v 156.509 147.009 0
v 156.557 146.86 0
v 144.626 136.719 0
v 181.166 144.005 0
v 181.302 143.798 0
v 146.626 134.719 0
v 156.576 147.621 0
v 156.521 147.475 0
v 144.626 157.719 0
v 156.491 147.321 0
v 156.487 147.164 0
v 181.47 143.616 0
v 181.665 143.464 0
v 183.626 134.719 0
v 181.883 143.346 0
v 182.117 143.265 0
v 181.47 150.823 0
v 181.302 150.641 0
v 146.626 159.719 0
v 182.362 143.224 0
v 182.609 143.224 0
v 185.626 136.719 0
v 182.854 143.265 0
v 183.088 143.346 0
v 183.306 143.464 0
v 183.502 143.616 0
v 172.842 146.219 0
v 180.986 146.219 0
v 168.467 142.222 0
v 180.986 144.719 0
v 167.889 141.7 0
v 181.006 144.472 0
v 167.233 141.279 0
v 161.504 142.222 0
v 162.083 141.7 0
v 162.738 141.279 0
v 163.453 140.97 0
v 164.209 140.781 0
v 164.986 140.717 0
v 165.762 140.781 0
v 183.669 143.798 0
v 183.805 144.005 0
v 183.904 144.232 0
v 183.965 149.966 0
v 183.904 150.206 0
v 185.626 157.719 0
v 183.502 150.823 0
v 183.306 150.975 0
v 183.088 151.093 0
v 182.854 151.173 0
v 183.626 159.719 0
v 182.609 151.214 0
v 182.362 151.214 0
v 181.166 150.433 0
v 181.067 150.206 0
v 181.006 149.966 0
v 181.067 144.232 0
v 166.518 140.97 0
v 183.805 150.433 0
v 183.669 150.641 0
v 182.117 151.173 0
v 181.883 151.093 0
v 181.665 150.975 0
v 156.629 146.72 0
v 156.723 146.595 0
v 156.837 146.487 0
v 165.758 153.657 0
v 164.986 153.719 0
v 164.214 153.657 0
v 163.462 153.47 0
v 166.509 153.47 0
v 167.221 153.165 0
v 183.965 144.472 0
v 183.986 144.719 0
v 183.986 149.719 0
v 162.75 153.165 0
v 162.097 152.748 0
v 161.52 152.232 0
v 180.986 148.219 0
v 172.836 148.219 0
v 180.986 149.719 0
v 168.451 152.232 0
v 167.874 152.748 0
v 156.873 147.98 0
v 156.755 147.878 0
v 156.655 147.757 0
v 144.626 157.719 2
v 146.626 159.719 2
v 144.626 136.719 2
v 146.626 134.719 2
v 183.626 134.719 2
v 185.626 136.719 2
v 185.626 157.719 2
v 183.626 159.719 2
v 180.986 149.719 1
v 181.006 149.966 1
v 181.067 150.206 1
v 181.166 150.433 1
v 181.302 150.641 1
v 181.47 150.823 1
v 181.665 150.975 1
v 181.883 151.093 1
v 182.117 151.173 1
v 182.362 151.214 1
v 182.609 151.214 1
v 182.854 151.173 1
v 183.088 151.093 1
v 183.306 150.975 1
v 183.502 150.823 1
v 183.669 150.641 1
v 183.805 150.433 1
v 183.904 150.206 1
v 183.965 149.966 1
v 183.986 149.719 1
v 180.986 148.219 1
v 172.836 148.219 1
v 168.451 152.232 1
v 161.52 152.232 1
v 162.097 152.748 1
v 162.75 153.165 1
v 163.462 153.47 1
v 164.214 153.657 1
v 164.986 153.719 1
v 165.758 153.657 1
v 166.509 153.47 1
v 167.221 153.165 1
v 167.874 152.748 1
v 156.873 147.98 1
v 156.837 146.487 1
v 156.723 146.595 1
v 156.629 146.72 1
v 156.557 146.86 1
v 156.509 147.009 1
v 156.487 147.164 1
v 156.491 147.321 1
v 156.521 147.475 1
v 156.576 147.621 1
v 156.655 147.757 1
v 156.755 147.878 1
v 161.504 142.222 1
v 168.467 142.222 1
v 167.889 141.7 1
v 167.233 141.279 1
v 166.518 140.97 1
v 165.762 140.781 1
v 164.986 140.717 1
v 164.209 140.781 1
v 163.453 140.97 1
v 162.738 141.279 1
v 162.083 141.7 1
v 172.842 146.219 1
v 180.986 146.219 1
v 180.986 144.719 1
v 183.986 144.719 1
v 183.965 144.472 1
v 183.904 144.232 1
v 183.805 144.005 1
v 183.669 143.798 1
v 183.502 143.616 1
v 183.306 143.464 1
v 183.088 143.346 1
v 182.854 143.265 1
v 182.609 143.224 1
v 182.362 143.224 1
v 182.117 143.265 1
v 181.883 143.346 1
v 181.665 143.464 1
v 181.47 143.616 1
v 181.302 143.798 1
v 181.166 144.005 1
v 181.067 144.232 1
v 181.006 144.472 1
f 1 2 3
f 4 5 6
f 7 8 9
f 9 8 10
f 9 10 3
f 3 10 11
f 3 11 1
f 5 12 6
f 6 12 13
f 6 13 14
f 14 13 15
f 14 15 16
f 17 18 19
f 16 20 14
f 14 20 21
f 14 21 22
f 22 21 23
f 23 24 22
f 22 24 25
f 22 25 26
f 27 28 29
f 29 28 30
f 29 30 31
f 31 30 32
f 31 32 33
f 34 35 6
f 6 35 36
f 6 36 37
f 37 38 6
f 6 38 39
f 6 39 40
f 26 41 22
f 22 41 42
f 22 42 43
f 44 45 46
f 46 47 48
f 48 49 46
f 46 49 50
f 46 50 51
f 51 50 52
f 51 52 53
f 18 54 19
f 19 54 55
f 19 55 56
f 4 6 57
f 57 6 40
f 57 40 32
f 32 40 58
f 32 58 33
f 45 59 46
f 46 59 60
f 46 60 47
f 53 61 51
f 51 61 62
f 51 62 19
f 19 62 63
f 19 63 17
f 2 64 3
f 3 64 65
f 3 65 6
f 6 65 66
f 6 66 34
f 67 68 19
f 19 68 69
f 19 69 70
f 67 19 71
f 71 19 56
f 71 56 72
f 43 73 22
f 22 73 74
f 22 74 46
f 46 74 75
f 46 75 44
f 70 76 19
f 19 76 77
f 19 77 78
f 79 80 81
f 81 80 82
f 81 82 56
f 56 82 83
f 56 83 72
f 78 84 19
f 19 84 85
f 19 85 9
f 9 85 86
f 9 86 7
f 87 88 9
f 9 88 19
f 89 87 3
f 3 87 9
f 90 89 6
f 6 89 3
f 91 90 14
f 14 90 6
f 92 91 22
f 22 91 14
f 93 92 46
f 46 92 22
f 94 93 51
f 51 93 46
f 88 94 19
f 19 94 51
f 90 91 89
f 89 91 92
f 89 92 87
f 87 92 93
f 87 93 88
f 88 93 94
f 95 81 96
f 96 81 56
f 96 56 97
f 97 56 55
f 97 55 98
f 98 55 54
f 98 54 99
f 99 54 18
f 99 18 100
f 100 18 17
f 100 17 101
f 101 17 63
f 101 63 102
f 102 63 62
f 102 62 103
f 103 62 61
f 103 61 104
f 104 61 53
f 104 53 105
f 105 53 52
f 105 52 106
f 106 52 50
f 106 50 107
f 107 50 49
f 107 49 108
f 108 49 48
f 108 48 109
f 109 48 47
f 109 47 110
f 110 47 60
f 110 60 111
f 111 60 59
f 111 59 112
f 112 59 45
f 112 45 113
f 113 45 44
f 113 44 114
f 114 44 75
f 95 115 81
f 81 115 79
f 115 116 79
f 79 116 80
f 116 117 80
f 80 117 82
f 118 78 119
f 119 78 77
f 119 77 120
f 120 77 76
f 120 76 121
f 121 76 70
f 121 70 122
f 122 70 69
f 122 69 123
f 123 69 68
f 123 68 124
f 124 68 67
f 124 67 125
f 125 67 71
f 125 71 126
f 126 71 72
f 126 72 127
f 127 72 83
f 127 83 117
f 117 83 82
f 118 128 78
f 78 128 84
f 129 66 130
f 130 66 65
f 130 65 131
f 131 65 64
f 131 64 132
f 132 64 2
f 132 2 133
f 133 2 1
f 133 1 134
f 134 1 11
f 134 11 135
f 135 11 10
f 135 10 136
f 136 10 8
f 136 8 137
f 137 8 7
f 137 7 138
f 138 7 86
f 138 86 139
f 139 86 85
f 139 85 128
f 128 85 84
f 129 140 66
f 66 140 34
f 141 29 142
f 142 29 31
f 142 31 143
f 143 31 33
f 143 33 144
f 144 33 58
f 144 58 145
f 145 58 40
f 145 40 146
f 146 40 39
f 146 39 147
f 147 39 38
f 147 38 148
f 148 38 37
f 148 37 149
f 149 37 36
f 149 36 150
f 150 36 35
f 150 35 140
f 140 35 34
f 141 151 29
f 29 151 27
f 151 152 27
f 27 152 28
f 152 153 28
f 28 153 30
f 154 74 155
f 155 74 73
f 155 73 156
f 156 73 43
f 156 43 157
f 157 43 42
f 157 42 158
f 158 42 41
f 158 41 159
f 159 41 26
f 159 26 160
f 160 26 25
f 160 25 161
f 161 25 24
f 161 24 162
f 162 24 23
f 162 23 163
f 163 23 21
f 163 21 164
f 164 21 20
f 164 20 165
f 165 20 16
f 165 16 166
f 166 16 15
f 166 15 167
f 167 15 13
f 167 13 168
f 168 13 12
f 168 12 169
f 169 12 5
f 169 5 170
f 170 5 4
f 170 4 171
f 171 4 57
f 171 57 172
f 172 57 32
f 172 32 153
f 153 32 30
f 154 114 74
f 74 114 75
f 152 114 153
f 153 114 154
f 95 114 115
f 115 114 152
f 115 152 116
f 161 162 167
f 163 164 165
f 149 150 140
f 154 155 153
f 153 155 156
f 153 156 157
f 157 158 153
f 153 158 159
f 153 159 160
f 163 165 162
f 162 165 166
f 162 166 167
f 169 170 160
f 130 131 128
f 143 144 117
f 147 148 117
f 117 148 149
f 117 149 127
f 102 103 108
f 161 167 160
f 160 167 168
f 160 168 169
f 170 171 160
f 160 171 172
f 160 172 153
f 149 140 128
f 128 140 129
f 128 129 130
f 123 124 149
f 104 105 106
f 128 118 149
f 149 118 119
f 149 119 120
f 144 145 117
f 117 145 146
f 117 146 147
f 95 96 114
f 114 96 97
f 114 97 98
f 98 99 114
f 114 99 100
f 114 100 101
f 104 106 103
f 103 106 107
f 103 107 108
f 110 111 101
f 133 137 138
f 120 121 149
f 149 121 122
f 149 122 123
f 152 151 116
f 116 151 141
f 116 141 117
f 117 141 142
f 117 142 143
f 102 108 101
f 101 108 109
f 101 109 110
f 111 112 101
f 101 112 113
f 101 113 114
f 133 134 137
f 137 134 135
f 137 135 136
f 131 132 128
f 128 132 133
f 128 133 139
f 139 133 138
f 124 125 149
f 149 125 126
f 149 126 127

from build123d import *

# Parameters (mm, degrees)
BOSS_EXTRUDE1_DEPTH = 2
CUT_EXTRUDE2_DEPTH  = 1


with BuildPart() as part:
    # Sketch3 → Boss-Extrude1 (new body)
    with BuildSketch(Plane.XY):
        Polygon((146.625606574, 159.719339874), (183.625606574, 159.719339874), (185.625606574, 157.719339874), (185.625606574, 136.719339874), (183.625606574, 134.719339874), (146.625606574, 134.719339874), (144.625606574, 136.719339874), (144.625606574, 157.719339874), align=None)
    extrude(amount=BOSS_EXTRUDE1_DEPTH)

    # Sketch4 → Cut-Extrude2 (cut)
    with BuildSketch(Plane.XY):
        with BuildLine():
            Line((183.985590549, 149.719355145), (183.985590549, 144.719355145))
            ThreePointArc((183.985590549, 144.719355145), (182.485590549, 143.219355145), (180.985590549, 144.719355145))
            Line((180.985590549, 144.719355145), (180.985590549, 146.219355145))
            Line((180.985590549, 146.219355145), (172.842061199, 146.219355145))
            Line((172.842061199, 146.219355145), (168.466892344, 142.221525657))
            ThreePointArc((168.466892344, 142.221525657), (164.985590549, 140.717307295), (161.504288754, 142.221525657))
            Line((161.504288754, 142.221525657), (156.8366409, 146.486989717))
            ThreePointArc((156.8366409, 146.486989717), (156.485875357, 147.242486304), (156.873407646, 147.979799185))
            Line((156.873407646, 147.979799185), (161.520046065, 152.231799364))
            ThreePointArc((161.520046065, 152.231799364), (164.985590549, 153.719355145), (168.451135032, 152.231799364))
            Line((168.451135032, 152.231799364), (172.836292086, 148.219355145))
            Line((172.836292086, 148.219355145), (180.985590549, 148.219355145))
            Line((180.985590549, 148.219355145), (180.985590549, 149.719355145))
            ThreePointArc((180.985590549, 149.719355145), (182.485590549, 151.219355145), (183.985590549, 149.719355145))
        make_face()
    extrude(amount=CUT_EXTRUDE2_DEPTH, mode=Mode.SUBTRACT)


solid = part.part
